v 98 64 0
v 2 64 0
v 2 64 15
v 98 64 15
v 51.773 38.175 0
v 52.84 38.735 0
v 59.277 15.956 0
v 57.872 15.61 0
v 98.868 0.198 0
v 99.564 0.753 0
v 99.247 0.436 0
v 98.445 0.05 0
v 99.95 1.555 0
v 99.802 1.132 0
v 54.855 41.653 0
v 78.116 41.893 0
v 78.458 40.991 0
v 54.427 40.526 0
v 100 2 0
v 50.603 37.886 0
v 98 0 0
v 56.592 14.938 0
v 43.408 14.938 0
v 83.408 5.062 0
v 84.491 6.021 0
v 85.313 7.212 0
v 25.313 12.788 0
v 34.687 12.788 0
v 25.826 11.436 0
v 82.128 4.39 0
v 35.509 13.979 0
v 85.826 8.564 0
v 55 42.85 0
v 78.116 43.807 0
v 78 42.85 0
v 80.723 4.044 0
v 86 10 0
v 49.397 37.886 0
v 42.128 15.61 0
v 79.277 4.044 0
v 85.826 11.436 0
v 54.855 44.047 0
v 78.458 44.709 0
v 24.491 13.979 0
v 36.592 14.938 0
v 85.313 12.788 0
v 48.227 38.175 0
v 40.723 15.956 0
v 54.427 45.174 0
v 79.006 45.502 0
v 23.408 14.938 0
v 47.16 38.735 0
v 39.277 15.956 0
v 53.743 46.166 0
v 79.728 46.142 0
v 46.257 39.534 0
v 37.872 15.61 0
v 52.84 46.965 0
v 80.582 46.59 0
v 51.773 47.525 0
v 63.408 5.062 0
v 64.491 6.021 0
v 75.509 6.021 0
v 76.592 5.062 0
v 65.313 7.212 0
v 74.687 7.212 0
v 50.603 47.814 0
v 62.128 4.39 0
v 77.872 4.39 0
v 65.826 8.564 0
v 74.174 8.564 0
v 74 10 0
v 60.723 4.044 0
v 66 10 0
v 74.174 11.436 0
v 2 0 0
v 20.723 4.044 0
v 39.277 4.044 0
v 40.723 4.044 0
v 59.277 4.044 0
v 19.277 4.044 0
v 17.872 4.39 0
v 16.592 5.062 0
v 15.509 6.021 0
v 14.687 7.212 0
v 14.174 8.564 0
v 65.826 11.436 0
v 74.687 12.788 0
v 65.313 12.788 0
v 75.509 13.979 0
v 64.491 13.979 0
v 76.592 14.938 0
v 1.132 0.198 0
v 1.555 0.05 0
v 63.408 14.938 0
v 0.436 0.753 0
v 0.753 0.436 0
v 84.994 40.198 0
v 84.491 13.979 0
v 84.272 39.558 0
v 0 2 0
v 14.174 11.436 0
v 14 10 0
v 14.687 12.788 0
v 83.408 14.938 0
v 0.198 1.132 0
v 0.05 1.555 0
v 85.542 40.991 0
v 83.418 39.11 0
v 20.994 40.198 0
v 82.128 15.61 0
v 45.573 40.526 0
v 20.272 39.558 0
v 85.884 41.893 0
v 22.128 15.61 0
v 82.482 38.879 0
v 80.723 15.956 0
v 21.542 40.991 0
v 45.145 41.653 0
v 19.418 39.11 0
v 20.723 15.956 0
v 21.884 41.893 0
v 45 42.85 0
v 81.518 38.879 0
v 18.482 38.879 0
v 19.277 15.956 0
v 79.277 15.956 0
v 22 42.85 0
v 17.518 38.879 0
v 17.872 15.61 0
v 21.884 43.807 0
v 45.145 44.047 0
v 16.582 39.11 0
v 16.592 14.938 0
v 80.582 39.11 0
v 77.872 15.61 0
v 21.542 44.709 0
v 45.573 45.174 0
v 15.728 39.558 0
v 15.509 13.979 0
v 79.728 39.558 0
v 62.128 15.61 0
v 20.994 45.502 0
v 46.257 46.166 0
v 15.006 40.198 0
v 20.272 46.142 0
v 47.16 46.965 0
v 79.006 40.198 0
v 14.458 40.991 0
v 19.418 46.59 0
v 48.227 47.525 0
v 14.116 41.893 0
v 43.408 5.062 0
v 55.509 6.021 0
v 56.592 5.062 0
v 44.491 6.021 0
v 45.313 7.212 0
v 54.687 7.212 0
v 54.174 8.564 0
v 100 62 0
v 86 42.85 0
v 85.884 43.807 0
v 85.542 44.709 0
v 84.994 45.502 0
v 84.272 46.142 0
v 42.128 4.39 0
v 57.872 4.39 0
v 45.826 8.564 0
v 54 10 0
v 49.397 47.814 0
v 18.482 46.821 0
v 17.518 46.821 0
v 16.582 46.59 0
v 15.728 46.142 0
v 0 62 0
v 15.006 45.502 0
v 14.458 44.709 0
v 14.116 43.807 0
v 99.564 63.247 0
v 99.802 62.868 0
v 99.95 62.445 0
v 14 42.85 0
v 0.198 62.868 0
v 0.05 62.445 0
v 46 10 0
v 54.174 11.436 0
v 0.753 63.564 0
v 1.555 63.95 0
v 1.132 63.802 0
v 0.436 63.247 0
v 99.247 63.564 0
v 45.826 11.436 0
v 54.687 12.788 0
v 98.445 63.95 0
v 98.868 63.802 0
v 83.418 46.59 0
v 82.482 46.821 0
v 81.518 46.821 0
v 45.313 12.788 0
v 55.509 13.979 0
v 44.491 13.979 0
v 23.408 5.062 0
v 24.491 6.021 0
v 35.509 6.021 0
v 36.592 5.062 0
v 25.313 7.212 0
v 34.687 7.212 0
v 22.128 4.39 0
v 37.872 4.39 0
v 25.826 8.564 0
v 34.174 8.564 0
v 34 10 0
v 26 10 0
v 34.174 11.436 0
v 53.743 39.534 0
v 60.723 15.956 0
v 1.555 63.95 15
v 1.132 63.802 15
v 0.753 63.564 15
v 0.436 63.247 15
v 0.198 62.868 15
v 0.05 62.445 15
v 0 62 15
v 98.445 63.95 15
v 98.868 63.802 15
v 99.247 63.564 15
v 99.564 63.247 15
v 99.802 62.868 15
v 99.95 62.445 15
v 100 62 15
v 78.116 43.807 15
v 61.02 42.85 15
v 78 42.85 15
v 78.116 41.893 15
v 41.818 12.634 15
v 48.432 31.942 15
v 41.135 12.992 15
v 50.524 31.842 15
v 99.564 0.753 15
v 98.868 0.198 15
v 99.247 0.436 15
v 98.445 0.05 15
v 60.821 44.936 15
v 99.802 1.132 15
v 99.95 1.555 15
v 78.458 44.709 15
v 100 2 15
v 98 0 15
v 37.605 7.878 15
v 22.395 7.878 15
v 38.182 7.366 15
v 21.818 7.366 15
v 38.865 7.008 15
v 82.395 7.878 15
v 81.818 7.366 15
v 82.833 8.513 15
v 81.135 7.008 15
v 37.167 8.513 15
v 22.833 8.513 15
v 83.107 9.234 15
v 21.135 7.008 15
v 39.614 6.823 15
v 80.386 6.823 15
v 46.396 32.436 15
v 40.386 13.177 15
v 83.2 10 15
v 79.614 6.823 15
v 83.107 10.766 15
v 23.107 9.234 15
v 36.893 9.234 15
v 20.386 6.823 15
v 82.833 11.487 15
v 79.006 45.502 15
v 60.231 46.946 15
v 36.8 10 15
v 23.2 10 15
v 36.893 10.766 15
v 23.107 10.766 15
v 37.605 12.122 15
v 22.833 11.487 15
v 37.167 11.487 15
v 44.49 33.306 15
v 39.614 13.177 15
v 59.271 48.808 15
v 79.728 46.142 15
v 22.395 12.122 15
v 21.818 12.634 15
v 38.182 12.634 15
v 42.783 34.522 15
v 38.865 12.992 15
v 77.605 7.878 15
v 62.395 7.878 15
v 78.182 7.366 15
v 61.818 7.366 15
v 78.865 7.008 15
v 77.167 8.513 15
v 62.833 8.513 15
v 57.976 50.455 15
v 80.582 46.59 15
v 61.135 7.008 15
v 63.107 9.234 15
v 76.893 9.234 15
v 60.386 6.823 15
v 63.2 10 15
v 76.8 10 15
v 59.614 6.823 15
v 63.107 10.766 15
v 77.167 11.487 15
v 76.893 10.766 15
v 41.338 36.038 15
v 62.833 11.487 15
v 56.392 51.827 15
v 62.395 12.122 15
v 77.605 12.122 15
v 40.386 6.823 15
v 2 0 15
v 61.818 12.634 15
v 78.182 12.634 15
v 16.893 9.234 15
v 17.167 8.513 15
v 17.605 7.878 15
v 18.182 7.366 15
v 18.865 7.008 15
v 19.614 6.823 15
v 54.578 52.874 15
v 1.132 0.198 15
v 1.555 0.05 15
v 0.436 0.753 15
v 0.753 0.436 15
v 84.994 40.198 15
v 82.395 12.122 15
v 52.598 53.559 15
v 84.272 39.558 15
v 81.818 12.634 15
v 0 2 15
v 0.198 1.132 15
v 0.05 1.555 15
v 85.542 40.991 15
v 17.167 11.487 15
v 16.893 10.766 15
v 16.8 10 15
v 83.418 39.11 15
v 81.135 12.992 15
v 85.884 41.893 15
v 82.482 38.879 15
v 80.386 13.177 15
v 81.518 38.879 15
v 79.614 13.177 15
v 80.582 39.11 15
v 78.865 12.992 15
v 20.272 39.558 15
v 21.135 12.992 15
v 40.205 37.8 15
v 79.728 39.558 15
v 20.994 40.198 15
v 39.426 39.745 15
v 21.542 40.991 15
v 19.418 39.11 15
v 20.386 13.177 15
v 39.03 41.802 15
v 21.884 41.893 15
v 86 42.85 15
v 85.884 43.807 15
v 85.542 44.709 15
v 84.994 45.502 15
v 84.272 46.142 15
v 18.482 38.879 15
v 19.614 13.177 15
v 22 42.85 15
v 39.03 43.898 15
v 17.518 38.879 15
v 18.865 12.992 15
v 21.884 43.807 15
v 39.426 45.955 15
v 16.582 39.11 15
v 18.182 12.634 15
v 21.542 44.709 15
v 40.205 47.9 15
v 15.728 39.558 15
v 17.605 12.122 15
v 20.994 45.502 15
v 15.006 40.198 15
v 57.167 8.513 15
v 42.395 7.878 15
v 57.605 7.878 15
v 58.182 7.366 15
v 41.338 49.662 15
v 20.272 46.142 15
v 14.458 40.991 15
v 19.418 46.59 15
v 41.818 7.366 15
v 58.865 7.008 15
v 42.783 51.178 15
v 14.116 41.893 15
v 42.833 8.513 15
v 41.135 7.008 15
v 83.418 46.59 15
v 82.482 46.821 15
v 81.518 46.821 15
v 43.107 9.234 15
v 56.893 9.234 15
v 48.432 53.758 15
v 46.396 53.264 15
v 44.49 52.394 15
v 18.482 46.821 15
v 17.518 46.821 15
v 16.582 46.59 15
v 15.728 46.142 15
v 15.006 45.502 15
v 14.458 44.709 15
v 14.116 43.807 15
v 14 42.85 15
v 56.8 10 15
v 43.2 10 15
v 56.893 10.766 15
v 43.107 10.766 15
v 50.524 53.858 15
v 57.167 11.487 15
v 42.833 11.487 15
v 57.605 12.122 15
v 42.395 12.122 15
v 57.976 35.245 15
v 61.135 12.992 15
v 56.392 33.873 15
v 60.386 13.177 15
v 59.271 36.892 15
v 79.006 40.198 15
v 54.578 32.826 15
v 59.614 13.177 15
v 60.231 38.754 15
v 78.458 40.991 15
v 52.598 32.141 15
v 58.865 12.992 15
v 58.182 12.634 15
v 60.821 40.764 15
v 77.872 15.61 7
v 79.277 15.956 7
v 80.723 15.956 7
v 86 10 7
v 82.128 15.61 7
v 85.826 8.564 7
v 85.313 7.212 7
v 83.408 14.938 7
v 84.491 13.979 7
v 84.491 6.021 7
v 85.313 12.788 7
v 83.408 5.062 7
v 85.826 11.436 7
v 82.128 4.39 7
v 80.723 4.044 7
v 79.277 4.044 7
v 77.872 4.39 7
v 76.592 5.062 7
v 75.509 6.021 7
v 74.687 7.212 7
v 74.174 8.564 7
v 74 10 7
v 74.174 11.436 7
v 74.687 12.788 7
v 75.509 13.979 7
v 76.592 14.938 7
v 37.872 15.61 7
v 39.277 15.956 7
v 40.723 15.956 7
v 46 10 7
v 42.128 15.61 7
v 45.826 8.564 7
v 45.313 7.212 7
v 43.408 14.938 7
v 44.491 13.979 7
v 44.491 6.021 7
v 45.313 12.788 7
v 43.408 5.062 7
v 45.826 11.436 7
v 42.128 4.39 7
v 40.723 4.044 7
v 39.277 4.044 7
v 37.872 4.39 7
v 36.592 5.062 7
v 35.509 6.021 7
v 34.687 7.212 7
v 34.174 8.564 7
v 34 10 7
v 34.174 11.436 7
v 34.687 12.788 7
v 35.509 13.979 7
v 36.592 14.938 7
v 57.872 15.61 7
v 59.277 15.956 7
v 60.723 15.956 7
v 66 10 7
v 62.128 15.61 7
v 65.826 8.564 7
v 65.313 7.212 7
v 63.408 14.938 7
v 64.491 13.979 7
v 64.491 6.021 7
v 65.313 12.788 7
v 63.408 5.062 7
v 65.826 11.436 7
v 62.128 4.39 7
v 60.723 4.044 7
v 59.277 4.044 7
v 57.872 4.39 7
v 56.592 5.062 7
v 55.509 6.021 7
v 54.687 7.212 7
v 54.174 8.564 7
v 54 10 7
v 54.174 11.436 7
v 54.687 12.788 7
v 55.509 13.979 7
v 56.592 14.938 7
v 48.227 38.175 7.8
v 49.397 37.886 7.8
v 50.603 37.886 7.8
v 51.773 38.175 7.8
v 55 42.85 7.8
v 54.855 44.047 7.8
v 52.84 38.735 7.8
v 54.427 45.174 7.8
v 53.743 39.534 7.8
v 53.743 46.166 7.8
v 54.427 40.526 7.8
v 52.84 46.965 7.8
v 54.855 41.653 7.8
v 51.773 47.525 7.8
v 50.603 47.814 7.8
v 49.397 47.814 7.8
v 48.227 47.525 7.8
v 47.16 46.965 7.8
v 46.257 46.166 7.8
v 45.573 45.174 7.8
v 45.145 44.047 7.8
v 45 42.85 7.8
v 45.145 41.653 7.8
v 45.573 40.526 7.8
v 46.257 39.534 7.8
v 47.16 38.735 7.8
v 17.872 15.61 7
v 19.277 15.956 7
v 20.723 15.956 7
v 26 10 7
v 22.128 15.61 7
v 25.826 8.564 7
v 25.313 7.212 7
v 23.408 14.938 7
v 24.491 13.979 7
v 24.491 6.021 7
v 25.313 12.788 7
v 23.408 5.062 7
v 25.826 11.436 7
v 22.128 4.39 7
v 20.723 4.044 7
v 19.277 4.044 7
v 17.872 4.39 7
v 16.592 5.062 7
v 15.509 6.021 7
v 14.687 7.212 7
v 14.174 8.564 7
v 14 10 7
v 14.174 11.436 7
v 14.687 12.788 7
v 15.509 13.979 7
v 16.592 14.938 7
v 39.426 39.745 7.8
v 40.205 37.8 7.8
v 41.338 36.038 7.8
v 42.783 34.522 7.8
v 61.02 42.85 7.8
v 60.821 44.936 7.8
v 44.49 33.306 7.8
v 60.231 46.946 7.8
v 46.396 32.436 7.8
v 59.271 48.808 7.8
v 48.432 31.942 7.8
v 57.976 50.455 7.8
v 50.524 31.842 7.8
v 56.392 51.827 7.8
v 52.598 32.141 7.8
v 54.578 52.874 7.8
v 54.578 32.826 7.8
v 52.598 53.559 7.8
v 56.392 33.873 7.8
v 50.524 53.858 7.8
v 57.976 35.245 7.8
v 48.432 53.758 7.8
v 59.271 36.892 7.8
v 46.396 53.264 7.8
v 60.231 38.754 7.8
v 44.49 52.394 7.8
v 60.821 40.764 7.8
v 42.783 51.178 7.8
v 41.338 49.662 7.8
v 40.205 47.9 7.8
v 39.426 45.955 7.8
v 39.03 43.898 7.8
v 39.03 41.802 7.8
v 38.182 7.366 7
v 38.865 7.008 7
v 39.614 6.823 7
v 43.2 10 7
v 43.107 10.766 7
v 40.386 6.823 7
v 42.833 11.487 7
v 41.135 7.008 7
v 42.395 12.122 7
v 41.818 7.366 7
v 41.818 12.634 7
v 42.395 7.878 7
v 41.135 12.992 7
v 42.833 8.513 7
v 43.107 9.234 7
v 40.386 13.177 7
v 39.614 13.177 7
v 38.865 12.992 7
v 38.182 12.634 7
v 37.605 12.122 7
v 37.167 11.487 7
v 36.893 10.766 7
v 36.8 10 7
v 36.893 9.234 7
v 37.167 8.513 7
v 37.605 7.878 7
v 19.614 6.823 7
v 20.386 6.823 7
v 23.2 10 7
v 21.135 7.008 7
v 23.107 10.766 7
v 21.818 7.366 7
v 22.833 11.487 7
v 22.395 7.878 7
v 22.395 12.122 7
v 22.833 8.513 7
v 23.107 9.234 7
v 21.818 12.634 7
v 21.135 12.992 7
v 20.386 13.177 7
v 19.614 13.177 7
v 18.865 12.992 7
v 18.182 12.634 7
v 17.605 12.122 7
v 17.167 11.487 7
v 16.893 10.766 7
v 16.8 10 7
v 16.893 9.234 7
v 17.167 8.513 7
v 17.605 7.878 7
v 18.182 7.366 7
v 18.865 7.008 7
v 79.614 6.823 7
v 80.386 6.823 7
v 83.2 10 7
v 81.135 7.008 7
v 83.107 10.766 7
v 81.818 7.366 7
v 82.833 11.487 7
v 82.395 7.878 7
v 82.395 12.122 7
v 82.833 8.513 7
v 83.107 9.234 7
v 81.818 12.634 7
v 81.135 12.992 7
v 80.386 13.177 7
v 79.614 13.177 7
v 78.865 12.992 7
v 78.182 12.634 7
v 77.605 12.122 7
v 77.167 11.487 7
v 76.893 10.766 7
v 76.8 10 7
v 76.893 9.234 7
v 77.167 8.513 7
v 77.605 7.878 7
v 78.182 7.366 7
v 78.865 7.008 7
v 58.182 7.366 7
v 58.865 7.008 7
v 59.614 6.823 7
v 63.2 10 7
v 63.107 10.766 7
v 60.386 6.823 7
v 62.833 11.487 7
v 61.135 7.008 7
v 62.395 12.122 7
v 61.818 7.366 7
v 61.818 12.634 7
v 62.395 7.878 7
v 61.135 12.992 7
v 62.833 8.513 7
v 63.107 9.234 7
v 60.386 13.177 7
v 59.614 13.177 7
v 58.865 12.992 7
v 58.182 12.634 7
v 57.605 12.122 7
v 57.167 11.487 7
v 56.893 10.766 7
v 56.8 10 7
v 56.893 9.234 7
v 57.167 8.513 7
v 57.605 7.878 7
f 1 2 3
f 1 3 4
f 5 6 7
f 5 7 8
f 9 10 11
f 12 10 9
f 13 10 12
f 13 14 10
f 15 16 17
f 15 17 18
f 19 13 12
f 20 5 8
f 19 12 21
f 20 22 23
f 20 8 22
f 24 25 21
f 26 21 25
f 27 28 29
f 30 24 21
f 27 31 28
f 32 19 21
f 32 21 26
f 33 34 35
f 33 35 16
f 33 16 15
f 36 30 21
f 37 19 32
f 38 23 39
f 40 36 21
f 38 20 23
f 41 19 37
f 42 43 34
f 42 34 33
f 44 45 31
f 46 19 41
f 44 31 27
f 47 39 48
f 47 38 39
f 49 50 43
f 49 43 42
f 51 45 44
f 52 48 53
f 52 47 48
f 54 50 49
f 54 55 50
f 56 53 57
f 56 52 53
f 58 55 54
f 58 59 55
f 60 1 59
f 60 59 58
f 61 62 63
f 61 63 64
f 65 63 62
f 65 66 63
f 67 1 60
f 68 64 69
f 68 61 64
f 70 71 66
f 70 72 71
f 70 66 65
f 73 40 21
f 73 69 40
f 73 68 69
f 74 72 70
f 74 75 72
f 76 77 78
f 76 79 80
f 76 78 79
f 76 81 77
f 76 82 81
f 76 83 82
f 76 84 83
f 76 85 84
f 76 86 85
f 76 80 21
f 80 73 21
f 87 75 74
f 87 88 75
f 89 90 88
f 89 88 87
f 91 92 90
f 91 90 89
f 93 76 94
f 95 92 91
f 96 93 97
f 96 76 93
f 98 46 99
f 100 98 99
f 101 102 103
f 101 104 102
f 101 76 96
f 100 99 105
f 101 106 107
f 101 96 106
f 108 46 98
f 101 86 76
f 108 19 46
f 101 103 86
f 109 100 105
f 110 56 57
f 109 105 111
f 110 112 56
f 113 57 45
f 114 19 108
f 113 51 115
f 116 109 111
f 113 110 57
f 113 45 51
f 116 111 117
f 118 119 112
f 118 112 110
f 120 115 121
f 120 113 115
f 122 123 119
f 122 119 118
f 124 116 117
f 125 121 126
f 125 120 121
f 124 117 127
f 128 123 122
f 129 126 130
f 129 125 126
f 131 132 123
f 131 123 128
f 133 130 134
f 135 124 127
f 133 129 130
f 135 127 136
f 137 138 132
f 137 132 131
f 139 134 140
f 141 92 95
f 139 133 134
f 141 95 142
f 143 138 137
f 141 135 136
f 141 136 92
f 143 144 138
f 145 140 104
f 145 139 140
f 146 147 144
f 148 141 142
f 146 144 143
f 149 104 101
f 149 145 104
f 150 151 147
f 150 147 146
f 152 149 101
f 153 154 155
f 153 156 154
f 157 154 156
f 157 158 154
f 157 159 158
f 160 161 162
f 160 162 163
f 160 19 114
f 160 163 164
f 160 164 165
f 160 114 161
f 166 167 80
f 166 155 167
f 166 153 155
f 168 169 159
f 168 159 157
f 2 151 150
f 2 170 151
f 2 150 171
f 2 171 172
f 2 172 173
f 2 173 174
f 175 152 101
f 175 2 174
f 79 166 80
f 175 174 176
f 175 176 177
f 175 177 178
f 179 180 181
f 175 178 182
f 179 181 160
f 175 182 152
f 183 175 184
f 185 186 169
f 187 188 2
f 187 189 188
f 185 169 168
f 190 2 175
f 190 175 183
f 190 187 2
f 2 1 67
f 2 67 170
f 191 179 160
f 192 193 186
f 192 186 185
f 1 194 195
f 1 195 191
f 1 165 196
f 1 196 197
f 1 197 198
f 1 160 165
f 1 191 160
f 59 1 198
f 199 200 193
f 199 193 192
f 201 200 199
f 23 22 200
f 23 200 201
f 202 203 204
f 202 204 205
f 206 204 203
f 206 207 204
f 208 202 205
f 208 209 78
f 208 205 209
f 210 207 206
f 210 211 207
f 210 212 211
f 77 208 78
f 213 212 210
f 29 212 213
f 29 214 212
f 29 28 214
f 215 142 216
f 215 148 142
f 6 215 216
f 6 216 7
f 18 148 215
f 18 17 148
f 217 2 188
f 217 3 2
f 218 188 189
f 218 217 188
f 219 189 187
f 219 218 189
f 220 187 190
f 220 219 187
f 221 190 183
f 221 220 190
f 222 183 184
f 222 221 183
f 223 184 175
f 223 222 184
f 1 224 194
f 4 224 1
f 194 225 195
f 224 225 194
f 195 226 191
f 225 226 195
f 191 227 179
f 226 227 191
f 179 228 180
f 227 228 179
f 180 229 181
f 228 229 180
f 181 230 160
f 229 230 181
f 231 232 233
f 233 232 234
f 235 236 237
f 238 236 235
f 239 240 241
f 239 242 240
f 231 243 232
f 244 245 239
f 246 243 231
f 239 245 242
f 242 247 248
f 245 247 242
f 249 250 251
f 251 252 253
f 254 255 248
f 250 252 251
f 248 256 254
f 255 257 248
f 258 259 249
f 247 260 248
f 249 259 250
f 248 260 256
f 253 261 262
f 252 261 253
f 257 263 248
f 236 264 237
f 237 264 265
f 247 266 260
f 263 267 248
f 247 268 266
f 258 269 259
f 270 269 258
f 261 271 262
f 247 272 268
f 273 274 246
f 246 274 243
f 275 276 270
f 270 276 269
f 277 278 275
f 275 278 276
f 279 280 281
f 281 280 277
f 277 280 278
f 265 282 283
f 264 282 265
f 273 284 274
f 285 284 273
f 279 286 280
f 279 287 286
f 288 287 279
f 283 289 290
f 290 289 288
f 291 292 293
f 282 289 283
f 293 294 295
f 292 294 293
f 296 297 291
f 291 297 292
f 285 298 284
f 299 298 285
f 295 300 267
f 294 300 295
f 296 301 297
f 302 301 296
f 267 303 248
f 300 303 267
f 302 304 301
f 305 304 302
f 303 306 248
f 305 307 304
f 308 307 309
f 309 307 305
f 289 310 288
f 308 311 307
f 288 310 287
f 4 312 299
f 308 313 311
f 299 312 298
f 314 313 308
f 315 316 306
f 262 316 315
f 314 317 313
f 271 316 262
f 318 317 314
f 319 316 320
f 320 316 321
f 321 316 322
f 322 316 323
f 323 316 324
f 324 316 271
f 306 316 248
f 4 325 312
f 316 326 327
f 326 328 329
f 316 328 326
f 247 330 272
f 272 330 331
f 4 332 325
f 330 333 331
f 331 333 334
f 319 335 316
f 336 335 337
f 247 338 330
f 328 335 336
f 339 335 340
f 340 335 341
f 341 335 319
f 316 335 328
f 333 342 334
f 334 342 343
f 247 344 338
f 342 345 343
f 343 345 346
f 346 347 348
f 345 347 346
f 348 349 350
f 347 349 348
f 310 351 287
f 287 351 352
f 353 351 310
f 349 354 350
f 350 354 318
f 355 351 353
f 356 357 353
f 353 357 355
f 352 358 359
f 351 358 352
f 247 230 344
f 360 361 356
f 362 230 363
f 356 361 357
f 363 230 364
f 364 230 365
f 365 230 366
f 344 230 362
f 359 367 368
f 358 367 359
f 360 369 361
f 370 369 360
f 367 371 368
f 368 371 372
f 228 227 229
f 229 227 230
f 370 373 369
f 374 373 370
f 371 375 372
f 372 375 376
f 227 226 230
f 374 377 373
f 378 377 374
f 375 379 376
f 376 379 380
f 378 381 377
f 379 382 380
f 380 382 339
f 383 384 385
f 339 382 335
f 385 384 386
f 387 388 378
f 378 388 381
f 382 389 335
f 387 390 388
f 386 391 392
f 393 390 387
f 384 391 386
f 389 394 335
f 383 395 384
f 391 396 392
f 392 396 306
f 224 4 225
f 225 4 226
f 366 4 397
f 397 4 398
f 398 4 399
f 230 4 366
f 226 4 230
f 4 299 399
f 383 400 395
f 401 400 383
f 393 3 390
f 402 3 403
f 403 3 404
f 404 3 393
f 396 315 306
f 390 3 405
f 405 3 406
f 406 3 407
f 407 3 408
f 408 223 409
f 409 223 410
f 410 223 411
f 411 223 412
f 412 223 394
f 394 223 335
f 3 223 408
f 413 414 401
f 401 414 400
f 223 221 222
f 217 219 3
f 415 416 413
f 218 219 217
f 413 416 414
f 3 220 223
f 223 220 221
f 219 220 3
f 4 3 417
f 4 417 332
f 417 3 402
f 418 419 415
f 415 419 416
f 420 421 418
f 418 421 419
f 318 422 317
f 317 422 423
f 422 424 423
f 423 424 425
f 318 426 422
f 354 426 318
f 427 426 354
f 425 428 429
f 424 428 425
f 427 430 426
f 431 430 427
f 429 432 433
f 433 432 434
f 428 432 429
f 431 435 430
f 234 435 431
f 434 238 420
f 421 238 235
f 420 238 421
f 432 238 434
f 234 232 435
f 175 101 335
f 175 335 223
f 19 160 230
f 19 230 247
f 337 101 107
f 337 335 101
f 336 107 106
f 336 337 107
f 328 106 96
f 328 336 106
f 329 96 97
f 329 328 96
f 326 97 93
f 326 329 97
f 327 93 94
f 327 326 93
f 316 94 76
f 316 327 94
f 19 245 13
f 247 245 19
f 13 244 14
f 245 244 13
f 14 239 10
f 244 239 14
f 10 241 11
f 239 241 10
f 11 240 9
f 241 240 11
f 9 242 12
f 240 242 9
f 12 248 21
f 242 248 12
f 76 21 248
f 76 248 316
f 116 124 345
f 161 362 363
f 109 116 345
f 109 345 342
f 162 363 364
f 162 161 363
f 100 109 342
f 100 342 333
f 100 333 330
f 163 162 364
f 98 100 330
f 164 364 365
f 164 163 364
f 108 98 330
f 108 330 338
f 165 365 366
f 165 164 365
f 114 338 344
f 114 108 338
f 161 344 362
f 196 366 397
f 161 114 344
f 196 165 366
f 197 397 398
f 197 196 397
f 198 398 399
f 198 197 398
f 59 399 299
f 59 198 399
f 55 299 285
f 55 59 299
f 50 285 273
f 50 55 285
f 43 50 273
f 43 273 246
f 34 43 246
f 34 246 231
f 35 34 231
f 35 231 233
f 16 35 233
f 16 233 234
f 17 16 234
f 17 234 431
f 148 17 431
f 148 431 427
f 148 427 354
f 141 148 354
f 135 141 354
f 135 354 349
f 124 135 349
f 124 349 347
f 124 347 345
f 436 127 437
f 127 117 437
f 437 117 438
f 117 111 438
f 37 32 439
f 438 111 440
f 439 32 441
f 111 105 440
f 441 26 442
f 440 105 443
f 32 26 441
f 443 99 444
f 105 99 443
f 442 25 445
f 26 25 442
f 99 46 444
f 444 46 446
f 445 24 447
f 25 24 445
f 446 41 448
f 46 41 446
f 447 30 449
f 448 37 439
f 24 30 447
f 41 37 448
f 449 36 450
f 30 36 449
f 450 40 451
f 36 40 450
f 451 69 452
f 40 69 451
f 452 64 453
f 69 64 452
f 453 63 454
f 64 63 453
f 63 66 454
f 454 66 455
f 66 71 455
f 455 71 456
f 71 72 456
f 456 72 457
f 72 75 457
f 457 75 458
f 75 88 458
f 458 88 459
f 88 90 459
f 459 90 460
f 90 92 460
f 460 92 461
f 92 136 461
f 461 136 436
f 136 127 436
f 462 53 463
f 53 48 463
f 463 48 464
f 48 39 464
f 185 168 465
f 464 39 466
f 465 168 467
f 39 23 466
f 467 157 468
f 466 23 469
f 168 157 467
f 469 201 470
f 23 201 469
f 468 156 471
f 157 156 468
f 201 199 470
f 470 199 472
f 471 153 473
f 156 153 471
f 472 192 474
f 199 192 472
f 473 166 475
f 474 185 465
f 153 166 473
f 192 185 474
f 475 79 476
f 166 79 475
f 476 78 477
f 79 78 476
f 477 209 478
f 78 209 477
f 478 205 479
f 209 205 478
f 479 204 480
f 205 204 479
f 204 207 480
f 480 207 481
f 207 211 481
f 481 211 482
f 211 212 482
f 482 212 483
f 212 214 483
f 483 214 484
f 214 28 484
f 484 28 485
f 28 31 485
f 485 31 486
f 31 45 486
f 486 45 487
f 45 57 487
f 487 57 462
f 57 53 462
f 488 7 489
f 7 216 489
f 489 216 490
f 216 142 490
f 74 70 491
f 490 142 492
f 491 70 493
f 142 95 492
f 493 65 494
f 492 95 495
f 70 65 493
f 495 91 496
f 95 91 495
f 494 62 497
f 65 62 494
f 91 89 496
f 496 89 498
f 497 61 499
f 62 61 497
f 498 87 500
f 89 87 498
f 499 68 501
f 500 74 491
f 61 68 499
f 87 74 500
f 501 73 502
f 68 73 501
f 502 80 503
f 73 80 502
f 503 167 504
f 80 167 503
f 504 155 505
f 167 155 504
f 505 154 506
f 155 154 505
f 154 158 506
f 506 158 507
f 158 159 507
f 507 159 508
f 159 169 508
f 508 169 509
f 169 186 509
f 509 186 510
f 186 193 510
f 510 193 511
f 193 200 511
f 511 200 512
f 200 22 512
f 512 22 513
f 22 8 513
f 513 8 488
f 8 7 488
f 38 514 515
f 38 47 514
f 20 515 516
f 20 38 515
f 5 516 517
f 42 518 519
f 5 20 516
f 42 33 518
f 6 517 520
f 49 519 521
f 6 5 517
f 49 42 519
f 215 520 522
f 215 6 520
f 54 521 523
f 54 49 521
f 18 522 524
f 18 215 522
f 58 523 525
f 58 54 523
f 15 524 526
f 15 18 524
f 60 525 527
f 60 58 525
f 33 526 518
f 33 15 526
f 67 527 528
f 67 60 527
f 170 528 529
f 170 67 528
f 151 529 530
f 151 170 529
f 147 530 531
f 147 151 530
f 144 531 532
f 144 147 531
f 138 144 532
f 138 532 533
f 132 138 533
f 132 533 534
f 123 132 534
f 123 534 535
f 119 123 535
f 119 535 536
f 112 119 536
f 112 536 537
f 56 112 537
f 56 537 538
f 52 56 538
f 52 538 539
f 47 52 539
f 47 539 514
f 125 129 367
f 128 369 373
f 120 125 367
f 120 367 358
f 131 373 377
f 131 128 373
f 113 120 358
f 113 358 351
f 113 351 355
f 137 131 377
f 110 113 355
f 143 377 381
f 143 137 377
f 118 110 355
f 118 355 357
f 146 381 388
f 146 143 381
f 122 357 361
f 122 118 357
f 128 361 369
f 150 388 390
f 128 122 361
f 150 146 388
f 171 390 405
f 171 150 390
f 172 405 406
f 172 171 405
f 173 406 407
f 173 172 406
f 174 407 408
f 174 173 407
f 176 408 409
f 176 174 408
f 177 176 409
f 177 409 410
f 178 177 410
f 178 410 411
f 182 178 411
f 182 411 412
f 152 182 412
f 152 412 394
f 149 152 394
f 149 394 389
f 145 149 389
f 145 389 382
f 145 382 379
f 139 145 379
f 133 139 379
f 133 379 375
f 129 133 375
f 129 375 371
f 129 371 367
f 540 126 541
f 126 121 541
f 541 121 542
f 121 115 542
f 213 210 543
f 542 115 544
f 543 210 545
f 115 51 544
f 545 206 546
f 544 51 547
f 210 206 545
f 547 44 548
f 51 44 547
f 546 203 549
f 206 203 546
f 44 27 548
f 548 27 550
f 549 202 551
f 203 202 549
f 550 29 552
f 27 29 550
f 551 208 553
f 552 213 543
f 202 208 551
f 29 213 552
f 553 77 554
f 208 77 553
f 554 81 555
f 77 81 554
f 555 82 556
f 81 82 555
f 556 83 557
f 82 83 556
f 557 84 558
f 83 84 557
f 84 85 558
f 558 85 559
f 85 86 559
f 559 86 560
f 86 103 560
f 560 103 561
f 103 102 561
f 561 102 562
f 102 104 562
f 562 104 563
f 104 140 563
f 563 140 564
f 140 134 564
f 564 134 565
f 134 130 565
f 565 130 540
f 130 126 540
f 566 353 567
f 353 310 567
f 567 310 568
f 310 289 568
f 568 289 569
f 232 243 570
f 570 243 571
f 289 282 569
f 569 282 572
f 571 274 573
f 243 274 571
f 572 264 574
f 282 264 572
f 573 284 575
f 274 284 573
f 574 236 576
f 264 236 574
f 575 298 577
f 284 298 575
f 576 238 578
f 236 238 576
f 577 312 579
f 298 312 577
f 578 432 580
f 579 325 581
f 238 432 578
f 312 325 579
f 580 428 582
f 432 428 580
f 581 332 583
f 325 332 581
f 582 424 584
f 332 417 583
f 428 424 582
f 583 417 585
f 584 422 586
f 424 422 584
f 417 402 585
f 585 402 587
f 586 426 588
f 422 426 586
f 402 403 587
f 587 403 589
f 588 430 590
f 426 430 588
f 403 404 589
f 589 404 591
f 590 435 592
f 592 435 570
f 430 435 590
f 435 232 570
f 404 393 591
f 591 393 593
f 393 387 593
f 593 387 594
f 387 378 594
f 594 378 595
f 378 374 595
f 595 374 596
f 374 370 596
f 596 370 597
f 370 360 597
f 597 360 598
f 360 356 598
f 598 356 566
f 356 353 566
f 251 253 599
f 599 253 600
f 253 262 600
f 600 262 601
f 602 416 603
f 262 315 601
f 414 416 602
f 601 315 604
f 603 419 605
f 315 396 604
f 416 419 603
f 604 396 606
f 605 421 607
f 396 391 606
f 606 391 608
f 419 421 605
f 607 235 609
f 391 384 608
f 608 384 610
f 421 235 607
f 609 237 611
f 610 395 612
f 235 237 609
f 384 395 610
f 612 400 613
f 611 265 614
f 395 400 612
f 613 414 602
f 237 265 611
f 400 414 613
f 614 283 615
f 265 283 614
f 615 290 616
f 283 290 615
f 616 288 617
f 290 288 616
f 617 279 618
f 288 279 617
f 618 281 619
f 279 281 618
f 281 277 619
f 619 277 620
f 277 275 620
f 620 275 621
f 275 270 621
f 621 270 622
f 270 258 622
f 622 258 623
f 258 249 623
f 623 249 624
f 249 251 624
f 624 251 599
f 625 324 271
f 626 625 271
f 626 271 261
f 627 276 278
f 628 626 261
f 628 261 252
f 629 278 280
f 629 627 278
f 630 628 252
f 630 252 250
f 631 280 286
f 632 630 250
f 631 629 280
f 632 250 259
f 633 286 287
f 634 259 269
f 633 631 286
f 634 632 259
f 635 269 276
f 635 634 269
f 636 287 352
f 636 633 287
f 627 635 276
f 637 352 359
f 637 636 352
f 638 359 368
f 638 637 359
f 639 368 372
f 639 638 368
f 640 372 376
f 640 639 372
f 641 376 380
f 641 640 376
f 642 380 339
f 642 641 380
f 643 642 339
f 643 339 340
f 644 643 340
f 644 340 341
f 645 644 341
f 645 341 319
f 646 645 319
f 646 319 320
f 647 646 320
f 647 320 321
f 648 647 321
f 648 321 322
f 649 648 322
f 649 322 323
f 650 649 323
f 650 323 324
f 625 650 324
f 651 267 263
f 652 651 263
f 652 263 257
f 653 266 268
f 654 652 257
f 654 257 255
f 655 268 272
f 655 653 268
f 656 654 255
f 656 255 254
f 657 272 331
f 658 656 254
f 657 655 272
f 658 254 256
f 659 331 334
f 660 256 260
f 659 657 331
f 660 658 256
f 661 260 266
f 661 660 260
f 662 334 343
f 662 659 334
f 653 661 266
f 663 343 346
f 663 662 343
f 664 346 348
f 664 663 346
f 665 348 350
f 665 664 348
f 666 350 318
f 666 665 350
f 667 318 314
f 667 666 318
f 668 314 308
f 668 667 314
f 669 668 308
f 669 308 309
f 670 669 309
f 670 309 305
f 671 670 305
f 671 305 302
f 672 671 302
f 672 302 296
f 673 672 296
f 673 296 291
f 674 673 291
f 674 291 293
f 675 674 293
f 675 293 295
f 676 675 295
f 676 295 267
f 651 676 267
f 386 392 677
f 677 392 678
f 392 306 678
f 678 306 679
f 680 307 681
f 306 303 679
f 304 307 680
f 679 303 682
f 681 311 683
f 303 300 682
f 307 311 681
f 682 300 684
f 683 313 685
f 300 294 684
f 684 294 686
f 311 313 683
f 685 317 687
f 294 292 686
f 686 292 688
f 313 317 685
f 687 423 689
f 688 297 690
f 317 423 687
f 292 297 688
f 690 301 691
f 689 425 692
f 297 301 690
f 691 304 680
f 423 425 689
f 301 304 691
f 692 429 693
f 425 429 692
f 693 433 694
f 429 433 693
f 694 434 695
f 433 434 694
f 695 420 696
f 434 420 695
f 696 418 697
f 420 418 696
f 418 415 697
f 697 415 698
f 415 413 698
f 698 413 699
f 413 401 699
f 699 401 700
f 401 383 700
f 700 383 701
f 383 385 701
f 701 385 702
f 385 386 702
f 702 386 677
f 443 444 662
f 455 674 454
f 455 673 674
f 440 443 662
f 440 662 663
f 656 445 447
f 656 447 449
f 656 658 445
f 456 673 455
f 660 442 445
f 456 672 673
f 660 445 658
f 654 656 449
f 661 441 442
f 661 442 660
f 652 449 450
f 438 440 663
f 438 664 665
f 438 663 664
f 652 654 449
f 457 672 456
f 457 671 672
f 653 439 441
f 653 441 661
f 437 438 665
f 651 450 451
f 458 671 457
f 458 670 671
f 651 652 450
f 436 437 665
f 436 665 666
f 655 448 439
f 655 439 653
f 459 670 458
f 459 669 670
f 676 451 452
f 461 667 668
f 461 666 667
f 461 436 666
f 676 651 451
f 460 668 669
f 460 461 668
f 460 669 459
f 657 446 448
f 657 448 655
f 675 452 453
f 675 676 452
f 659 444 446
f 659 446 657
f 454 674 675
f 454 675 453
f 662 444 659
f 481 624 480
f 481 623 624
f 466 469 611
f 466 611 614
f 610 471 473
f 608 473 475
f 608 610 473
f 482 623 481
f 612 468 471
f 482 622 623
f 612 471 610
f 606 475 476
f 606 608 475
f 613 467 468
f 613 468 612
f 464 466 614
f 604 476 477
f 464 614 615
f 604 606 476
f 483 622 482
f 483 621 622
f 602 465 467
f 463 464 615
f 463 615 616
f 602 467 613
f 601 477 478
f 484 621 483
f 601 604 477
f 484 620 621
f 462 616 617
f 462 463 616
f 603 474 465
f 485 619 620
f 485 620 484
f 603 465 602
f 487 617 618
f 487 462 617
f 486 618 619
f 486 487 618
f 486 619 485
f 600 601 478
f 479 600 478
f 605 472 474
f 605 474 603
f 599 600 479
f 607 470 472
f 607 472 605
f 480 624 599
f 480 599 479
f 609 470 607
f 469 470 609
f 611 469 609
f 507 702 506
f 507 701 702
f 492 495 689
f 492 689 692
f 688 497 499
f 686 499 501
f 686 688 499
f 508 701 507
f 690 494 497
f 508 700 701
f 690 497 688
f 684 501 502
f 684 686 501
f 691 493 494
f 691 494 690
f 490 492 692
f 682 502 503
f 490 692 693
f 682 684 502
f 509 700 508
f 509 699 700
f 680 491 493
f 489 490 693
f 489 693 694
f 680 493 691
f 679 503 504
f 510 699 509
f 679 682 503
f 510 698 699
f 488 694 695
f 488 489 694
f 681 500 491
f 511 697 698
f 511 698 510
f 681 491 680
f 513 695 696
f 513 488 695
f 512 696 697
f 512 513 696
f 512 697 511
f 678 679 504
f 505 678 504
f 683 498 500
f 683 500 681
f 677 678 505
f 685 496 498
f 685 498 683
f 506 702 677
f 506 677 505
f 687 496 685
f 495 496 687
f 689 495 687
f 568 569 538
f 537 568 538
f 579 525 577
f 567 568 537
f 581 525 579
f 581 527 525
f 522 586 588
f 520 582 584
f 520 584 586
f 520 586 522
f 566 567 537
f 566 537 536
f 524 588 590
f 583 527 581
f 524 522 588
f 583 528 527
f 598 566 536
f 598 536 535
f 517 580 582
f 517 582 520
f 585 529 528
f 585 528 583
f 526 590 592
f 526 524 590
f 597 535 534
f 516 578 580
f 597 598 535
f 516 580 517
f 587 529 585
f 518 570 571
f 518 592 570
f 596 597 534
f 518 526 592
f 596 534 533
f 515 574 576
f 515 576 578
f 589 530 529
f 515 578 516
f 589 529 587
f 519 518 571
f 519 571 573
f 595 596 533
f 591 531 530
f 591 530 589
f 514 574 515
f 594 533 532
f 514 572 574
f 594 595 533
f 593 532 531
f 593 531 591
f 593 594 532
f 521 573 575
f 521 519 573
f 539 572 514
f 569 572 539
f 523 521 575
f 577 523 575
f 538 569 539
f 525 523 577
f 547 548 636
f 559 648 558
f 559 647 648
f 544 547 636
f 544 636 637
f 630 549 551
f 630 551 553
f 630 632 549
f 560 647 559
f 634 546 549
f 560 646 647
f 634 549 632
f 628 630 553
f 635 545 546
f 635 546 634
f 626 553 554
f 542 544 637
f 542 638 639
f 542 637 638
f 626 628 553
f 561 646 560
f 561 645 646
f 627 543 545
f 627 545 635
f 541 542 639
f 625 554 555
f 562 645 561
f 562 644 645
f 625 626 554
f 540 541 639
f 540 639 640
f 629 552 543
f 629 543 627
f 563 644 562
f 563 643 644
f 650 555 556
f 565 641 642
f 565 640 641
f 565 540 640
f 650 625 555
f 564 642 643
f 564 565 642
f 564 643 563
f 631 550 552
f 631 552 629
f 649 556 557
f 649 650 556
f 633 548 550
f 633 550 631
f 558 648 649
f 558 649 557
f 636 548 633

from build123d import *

# Parameters (mm, degrees)
SKETCH_W        = 100
SKETCH_H        = 64
SKETCH_R        = 5
SKETCH_R_2      = 3.2
SKETCH_R_3      = 4
PAD_DEPTH       = 15
SKETCH001_R     = 11.02
POCKET_DEPTH    = 7.2
SKETCH002_R     = 6
POCKET001_DEPTH = 7
SKETCH003_R     = 3.2
POCKET002_DEPTH = 15
FILLET_R        = 2


with BuildPart() as part:
    # Sketch → Pad (new body)
    with BuildSketch(Plane.XY):
        with Locations((50, 32)):
            Rectangle(SKETCH_W, SKETCH_H)
        with Locations((50, 42.85)):
            Circle(SKETCH_R, mode=Mode.SUBTRACT)
        with Locations((20, 10)):
            Circle(SKETCH_R_2, mode=Mode.SUBTRACT)
        with Locations((80, 10)):
            Circle(SKETCH_R_2, mode=Mode.SUBTRACT)
        with Locations((82, 42.85)):
            Circle(SKETCH_R_3, mode=Mode.SUBTRACT)
        with Locations((18, 42.85)):
            Circle(SKETCH_R_3, mode=Mode.SUBTRACT)
    extrude(amount=PAD_DEPTH)

    # Sketch001 (on Face11 of Pad) → Pocket (cut)
    with BuildSketch(Plane.XY.offset(15)):
        with Locations((50, 42.85)):
            Circle(SKETCH001_R)
    extrude(amount=-POCKET_DEPTH, mode=Mode.SUBTRACT)

    # Sketch002 (on Face4 of Pocket) → Pocket001 (cut)
    with BuildSketch(Plane(origin=(0, 0, 0), x_dir=(1, 0, 0), z_dir=(0, 0, -1))):
        with Locations((20, -10)):
            Circle(SKETCH002_R)
        with Locations((80, -10)):
            Circle(SKETCH002_R)
        with Locations((40, -10)):
            Circle(SKETCH002_R)
        with Locations((60, -10)):
            Circle(SKETCH002_R)
    extrude(amount=-POCKET001_DEPTH, mode=Mode.SUBTRACT)

    # Sketch003 (on Face5 of Pocket001) → Pocket002 (cut)
    with BuildSketch(Plane.XY.offset(15)):
        with Locations((40, 10)):
            Circle(SKETCH003_R)
        with Locations((60, 10)):
            Circle(SKETCH003_R)
    extrude(amount=-POCKET002_DEPTH, mode=Mode.SUBTRACT)

    # Fillet
    fillet_edges = [part.edges().sort_by_distance(p)[0] for p in [
        (0, 64, 7.5),
        (100, 64, 7.5),
        (0, 0, 7.5),
        (100, 0, 7.5),
    ]]
    fillet(fillet_edges, radius=FILLET_R)


solid = part.part
